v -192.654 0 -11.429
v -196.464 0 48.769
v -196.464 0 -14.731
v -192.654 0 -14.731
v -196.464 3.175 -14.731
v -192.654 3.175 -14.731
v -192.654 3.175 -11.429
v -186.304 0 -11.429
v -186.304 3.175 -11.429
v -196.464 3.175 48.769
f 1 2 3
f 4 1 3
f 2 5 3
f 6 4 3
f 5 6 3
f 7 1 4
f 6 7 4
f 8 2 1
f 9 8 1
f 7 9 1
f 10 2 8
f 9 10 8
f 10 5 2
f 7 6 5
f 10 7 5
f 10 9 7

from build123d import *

# Parameters (mm, degrees)
SKETCH2_W                      = 304.8
SKETCH2_H                      = 304.8
BOSS_EXTRUDE1_DEPTH            = 3.175
CUT_EXTRUDE1_DEPTH             = 348.408852067
CUT_EXTRUDE1_DEPTH_BACK        = 348.408852067
SKETCH3_W                      = 304.8
SKETCH3_H                      = 304.8
SKETCH3_R                      = 12.7
SKETCH3_R_2                    = 8.89
BODY_DELETE_KEEP_1_OUTLINE_R   = 8.89
BODY_DELETE_KEEP_1_OUTLINE_R_2 = 12.7
BODY_DELETE_KEEP_1_DEPTH       = 3.175


# Read off the part's stored shape, not the designer's step: Body-Delete/Keep 1
with BuildPart() as part:
    # Sketch2 → Boss-Extrude1 (new body)
    with BuildSketch(Plane(origin=(0, 0, 0), x_dir=(1, 0, 0), z_dir=(0, 1, 0))):
        with Locations((-56.763509666, -124.968808797)):
            Rectangle(SKETCH2_W, SKETCH2_H)
    extrude(amount=BOSS_EXTRUDE1_DEPTH)

    # Sketch3 → Cut-Extrude1 (cut, two sides: drawn at the far end of the back side and taken through both)
    # profile 1 of 3: a face of its own
    with BuildSketch(Plane(origin=(0, 3.175, 0), x_dir=(1, 0, 0), z_dir=(0, 1, 0)).offset(-CUT_EXTRUDE1_DEPTH_BACK)):
        with Locations((-56.763509666, -124.968808797)):
            Rectangle(SKETCH3_W, SKETCH3_H)
        Polygon((-188.253637726, -268.695366412), (-192.063637726, -268.695366412), (-192.063637726, -265.393366412), (-198.413637726, -265.393366412), (-188.253637726, -205.195366412), align=None, mode=Mode.SUBTRACT)
        Polygon((-185.713637726, -265.393366412), (-175.553637726, -205.195366412), (-175.553637726, -268.695366412), (-179.363637726, -268.695366412), (-179.363637726, -265.393366412), align=None, mode=Mode.SUBTRACT)
        Polygon((-162.853637726, -268.695366412), (-166.663637726, -268.695366412), (-166.663637726, -265.393366412), (-173.013637726, -265.393366412), (-162.853637726, -205.195366412), align=None, mode=Mode.SUBTRACT)
        Polygon((-150.153637726, -268.695366412), (-153.963637726, -268.695366412), (-153.963637726, -265.393366412), (-160.313637726, -265.393366412), (-150.153637726, -205.195366412), align=None, mode=Mode.SUBTRACT)
        Polygon((-147.613637726, -265.393366412), (-137.453637726, -205.195366412), (-137.453637726, -268.695366412), (-141.263637726, -268.695366412), (-141.263637726, -265.393366412), align=None, mode=Mode.SUBTRACT)
        Polygon((-128.563637726, -265.393366412), (-134.913637726, -265.393366412), (-124.753637726, -205.195366412), (-124.753637726, -268.695366412), (-128.563637726, -268.695366412), align=None, mode=Mode.SUBTRACT)
        Polygon((-122.213637726, -265.393366412), (-112.053637726, -205.195366412), (-112.053637726, -268.695366412), (-115.863637726, -268.695366412), (-115.863637726, -265.393366412), align=None, mode=Mode.SUBTRACT)
        Polygon((-99.353637726, -268.695366412), (-103.163637726, -268.695366412), (-103.163637726, -265.393366412), (-109.513637726, -265.393366412), (-99.353637726, -205.195366412), align=None, mode=Mode.SUBTRACT)
        Polygon((-90.463637726, -268.695366412), (-90.463637726, -265.393366412), (-96.813637726, -265.393366412), (-86.653637726, -205.195366412), (-86.653637726, -268.695366412), align=None, mode=Mode.SUBTRACT)
        Polygon((-84.113637726, -265.393366412), (-73.953637726, -205.195366412), (-73.953637726, -268.695366412), (-77.763637726, -268.695366412), (-77.763637726, -265.393366412), align=None, mode=Mode.SUBTRACT)
        Polygon((-71.413637726, -265.393366412), (-61.253637726, -205.195366412), (-61.253637726, -268.695366412), (-65.063637726, -268.695366412), (-65.063637726, -265.393366412), align=None, mode=Mode.SUBTRACT)
        with BuildLine():
            ThreePointArc((-132.963509666, -135.600090559), (-133.446874634, -138.030130355), (-134.823381605, -140.09021862))
            Line((-134.823381605, -140.09021862), (-188.253637726, -193.520474741))
            ThreePointArc((-188.253637726, -193.520474741), (-190.313725991, -194.896981712), (-192.743765787, -195.38034668))
            Line((-192.743765787, -195.38034668), (-196.463509666, -195.38034668))
            Line((-196.463509666, -195.38034668), (-196.463509666, -131.88034668))
            Line((-196.463509666, -131.88034668), (-132.963509666, -131.88034668))
            Line((-132.963509666, -131.88034668), (-132.963509666, -135.600090559))
        make_face(mode=Mode.SUBTRACT)
        with BuildLine():
            Line((-126.613509666, -195.38034668), (-126.613509666, -131.88034668))
            Line((-126.613509666, -131.88034668), (-63.113509666, -131.88034668))
            Line((-63.113509666, -131.88034668), (-63.113509666, -135.600090559))
            ThreePointArc((-63.113509666, -135.600090559), (-63.596874634, -138.030130355), (-64.973381605, -140.09021862))
            Line((-64.973381605, -140.09021862), (-118.403637726, -193.520474741))
            ThreePointArc((-118.403637726, -193.520474741), (-120.463725991, -194.896981712), (-122.893765787, -195.38034668))
            Line((-122.893765787, -195.38034668), (-126.613509666, -195.38034668))
        make_face(mode=Mode.SUBTRACT)
        Polygon((-52.363637726, -268.695366412), (-52.363637726, -265.393366412), (-58.713637726, -265.393366412), (-48.553637726, -205.195366412), (-48.553637726, -268.695366412), align=None, mode=Mode.SUBTRACT)
        Polygon((-35.853637726, -205.195366412), (-35.853637726, -268.695366412), (-39.663637726, -268.695366412), (-39.663637726, -265.393366412), (-46.013637726, -265.393366412), align=None, mode=Mode.SUBTRACT)
        Polygon((-23.153637726, -205.195366412), (-23.153637726, -268.695366412), (-26.963637726, -268.695366412), (-26.963637726, -265.393366412), (-33.313637726, -265.393366412), align=None, mode=Mode.SUBTRACT)
        Polygon((-20.613637726, -265.393366412), (-10.453637726, -205.195366412), (-10.453637726, -268.695366412), (-14.263637726, -268.695366412), (-14.263637726, -265.393366412), align=None, mode=Mode.SUBTRACT)
        Polygon((-1.563637726, -268.695366412), (-1.563637726, -265.393366412), (-7.913637726, -265.393366412), (2.246362274, -205.195366412), (2.246362274, -268.695366412), align=None, mode=Mode.SUBTRACT)
        with BuildLine():
            Line((-53.043765787, -195.38034668), (-56.763509666, -195.38034668))
            Line((-56.763509666, -195.38034668), (-56.763509666, -131.88034668))
            Line((-56.763509666, -131.88034668), (6.736490334, -131.88034668))
            Line((6.736490334, -131.88034668), (6.736490334, -135.600090559))
            ThreePointArc((6.736490334, -135.600090559), (6.253125366, -138.030130355), (4.876618395, -140.09021862))
            Line((4.876618395, -140.09021862), (-48.553637726, -193.520474741))
            ThreePointArc((-48.553637726, -193.520474741), (-50.613725991, -194.896981712), (-53.043765787, -195.38034668))
        make_face(mode=Mode.SUBTRACT)
        with BuildLine():
            Line((13.086490334, -131.88034668), (76.586490334, -131.88034668))
            Line((76.586490334, -131.88034668), (76.586490334, -135.600090559))
            ThreePointArc((76.586490334, -135.600090559), (76.103125366, -138.030130355), (74.726618395, -140.09021862))
            Line((74.726618395, -140.09021862), (21.296362274, -193.520474741))
            ThreePointArc((21.296362274, -193.520474741), (19.236274009, -194.896981712), (16.806234213, -195.38034668))
            Line((16.806234213, -195.38034668), (13.086490334, -195.38034668))
            Line((13.086490334, -195.38034668), (13.086490334, -131.88034668))
        make_face(mode=Mode.SUBTRACT)
        with BuildLine():
            Line((-196.463509666, -125.53034668), (-196.463509666, -62.03034668))
            Line((-196.463509666, -62.03034668), (-132.963509666, -62.03034668))
            Line((-132.963509666, -62.03034668), (-132.963509666, -65.750090559))
            ThreePointArc((-132.963509666, -65.750090559), (-133.10773728, -67.095783354), (-133.533868437, -68.38034668))
            ThreePointArc((-133.533868437, -68.38034668), (-134.095097913, -69.368194866), (-134.823381605, -70.24021862))
            Line((-134.823381605, -70.24021862), (-188.253637726, -123.670474741))
            ThreePointArc((-188.253637726, -123.670474741), (-189.12566148, -124.398758433), (-190.113509666, -124.959987909))
            ThreePointArc((-190.113509666, -124.959987909), (-191.398072992, -125.386119066), (-192.743765787, -125.53034668))
            Line((-192.743765787, -125.53034668), (-196.463509666, -125.53034668))
        make_face(mode=Mode.SUBTRACT)
        with BuildLine():
            Line((-122.893765787, -125.53034668), (-126.613509666, -125.53034668))
            Line((-126.613509666, -125.53034668), (-126.613509666, -62.03034668))
            Line((-126.613509666, -62.03034668), (-63.113509666, -62.03034668))
            Line((-63.113509666, -62.03034668), (-63.113509666, -65.750090559))
            ThreePointArc((-63.113509666, -65.750090559), (-63.596874634, -68.180130355), (-64.973381605, -70.24021862))
            Line((-64.973381605, -70.24021862), (-118.403637726, -123.670474741))
            ThreePointArc((-118.403637726, -123.670474741), (-120.463725991, -125.046981712), (-122.893765787, -125.53034668))
        make_face(mode=Mode.SUBTRACT)
        Polygon((-196.463509666, -48.768808797), (-196.463509666, 14.731191203), (-192.653509666, 14.731191203), (-192.653509666, 11.429191203), (-186.303509666, 11.429191203), align=None, mode=Mode.SUBTRACT)
        Polygon((-183.763509666, 14.731191203), (-179.953509666, 14.731191203), (-179.953509666, 11.429191203), (-173.603509666, 11.429191203), (-183.763509666, -48.768808797), align=None, mode=Mode.SUBTRACT)
        Polygon((-171.063509666, 14.731191203), (-167.253509666, 14.731191203), (-167.253509666, 11.429191203), (-160.903509666, 11.429191203), (-171.063509666, -48.768808797), align=None, mode=Mode.SUBTRACT)
        Polygon((-158.363509666, 14.731191203), (-154.553509666, 14.731191203), (-154.553509666, 11.429191203), (-148.203509666, 11.429191203), (-158.363509666, -48.768808797), align=None, mode=Mode.SUBTRACT)
        Polygon((-145.663509666, 14.731191203), (-141.853509666, 14.731191203), (-141.853509666, 11.429191203), (-135.503509666, 11.429191203), (-145.663509666, -48.768808797), align=None, mode=Mode.SUBTRACT)
        Polygon((-132.963509666, 14.731191203), (-129.153509666, 14.731191203), (-129.153509666, 11.429191203), (-122.803509666, 11.429191203), (-132.963509666, -48.768808797), align=None, mode=Mode.SUBTRACT)
        Polygon((-120.263509666, 14.731191203), (-116.453509666, 14.731191203), (-116.453509666, 11.429191203), (-110.103509666, 11.429191203), (-120.263509666, -48.768808797), align=None, mode=Mode.SUBTRACT)
        Polygon((-107.563509666, 14.731191203), (-103.753509666, 14.731191203), (-103.753509666, 11.429191203), (-97.403509666, 11.429191203), (-107.563509666, -48.768808797), align=None, mode=Mode.SUBTRACT)
        Polygon((-94.863509666, 14.731191203), (-91.053509666, 14.731191203), (-91.053509666, 11.429191203), (-84.703509666, 11.429191203), (-94.863509666, -48.768808797), align=None, mode=Mode.SUBTRACT)
        Polygon((-82.163509666, 14.731191203), (-78.353509666, 14.731191203), (-78.353509666, 11.429191203), (-72.003509666, 11.429191203), (-82.163509666, -48.768808797), align=None, mode=Mode.SUBTRACT)
        Polygon((-69.463509666, 14.731191203), (-65.653509666, 14.731191203), (-65.653509666, 11.429191203), (-59.303509666, 11.429191203), (-69.463509666, -48.768808797), align=None, mode=Mode.SUBTRACT)
        with BuildLine():
            Line((-53.043765787, -125.53034668), (-56.763509666, -125.53034668))
            Line((-56.763509666, -125.53034668), (-56.763509666, -62.03034668))
            Line((-56.763509666, -62.03034668), (6.736490334, -62.03034668))
            Line((6.736490334, -62.03034668), (6.736490334, -65.750090559))
            ThreePointArc((6.736490334, -65.750090559), (6.253125366, -68.180130355), (4.876618395, -70.24021862))
            Line((4.876618395, -70.24021862), (-48.553637726, -123.670474741))
            ThreePointArc((-48.553637726, -123.670474741), (-50.613725991, -125.046981712), (-53.043765787, -125.53034668))
        make_face(mode=Mode.SUBTRACT)
        with BuildLine():
            Line((16.806234213, -125.53034668), (13.086490334, -125.53034668))
            Line((13.086490334, -125.53034668), (13.086490334, -62.03034668))
            Line((13.086490334, -62.03034668), (76.586490334, -62.03034668))
            Line((76.586490334, -62.03034668), (76.586490334, -65.750090559))
            ThreePointArc((76.586490334, -65.750090559), (76.103125366, -68.180130355), (74.726618395, -70.24021862))
            Line((74.726618395, -70.24021862), (21.296362274, -123.670474741))
            ThreePointArc((21.296362274, -123.670474741), (19.236274009, -125.046981712), (16.806234213, -125.53034668))
        make_face(mode=Mode.SUBTRACT)
        Polygon((-56.763509666, 14.731191203), (-52.953509666, 14.731191203), (-52.953509666, 11.429191203), (-46.603509666, 11.429191203), (-56.763509666, -48.768808797), align=None, mode=Mode.SUBTRACT)
        Polygon((-44.063509666, 14.731191203), (-40.253509666, 14.731191203), (-40.253509666, 11.429191203), (-33.903509666, 11.429191203), (-44.063509666, -48.768808797), align=None, mode=Mode.SUBTRACT)
        Polygon((-31.363509666, 14.731191203), (-27.553509666, 14.731191203), (-27.553509666, 11.429191203), (-21.203509666, 11.429191203), (-31.363509666, -48.768808797), align=None, mode=Mode.SUBTRACT)
        Polygon((-18.663509666, 14.731191203), (-14.853509666, 14.731191203), (-14.853509666, 11.429191203), (-8.503509666, 11.429191203), (-18.663509666, -48.768808797), align=None, mode=Mode.SUBTRACT)
        Polygon((-5.963509666, 14.731191203), (-2.153509666, 14.731191203), (-2.153509666, 11.429191203), (4.196490334, 11.429191203), (-5.963509666, -48.768808797), align=None, mode=Mode.SUBTRACT)
        Polygon((57.536490334, -48.768808797), (57.536490334, -52.070808797), (32.136490334, -52.070808797), (32.136490334, -48.768808797), (28.834490334, -48.768808797), (28.834490334, -23.368808797), (32.136490334, -23.368808797), (32.136490334, -20.066808797), (57.536490334, -20.066808797), (57.536490334, -23.368808797), (60.838490334, -23.368808797), (60.838490334, -48.768808797), align=None, mode=Mode.SUBTRACT)
        Polygon((28.834490334, 14.731191203), (32.136490334, 14.731191203), (32.136490334, 18.033191203), (57.536490334, 18.033191203), (57.536490334, 14.731191203), (60.838490334, 14.731191203), (60.838490334, -10.668808797), (57.536490334, -10.668808797), (57.536490334, -13.970808797), (32.136490334, -13.970808797), (32.136490334, -10.668808797), (28.834490334, -10.668808797), align=None, mode=Mode.SUBTRACT)
    # profile 2 of 3: a face of its own
    with BuildSketch(Plane(origin=(0, 3.175, 0), x_dir=(1, 0, 0), z_dir=(0, 1, 0)).offset(-CUT_EXTRUDE1_DEPTH_BACK)):
        with Locations(Location((44.836490334, -36.068808797, 0), (0, 0, 270))):
            Circle(SKETCH3_R)
    # profile 3 of 3: a face of its own
    with BuildSketch(Plane(origin=(0, 3.175, 0), x_dir=(1, 0, 0), z_dir=(0, 1, 0)).offset(-CUT_EXTRUDE1_DEPTH_BACK)):
        with Locations(Location((44.836490334, 2.031191203, 0), (0, 0, 270))):
            Circle(SKETCH3_R_2)
    extrude(amount=CUT_EXTRUDE1_DEPTH + CUT_EXTRUDE1_DEPTH_BACK, mode=Mode.SUBTRACT)

    # Body-Delete/Keep 1 outline → Body-Delete/Keep 1 (cut)
    # profile 1 of 41: a face of its own
    with BuildSketch(Plane(origin=(0, 0, 0), x_dir=(1, 0, 0), z_dir=(0, 1, 0))):
        Polygon((-5.963509666, -48.768808797), (4.196490334, 11.429191203), (-2.153509666, 11.429191203), (-2.153509666, 14.731191203), (-5.963509666, 14.731191203), align=None)
    # profile 2 of 41: a face of its own
    with BuildSketch(Plane(origin=(0, 0, 0), x_dir=(1, 0, 0), z_dir=(0, 1, 0))):
        Polygon((-31.363509666, -48.768808797), (-21.203509666, 11.429191203), (-27.553509666, 11.429191203), (-27.553509666, 14.731191203), (-31.363509666, 14.731191203), align=None)
    # profile 3 of 41: a face of its own
    with BuildSketch(Plane(origin=(0, 0, 0), x_dir=(1, 0, 0), z_dir=(0, 1, 0))):
        Polygon((-18.663509666, -48.768808797), (-8.503509666, 11.429191203), (-14.853509666, 11.429191203), (-14.853509666, 14.731191203), (-18.663509666, 14.731191203), align=None)
    # profile 4 of 41: a face of its own
    with BuildSketch(Plane(origin=(0, 0, 0), x_dir=(1, 0, 0), z_dir=(0, 1, 0))):
        Polygon((-69.463509666, -48.768808797), (-59.303509666, 11.429191203), (-65.653509666, 11.429191203), (-65.653509666, 14.731191203), (-69.463509666, 14.731191203), align=None)
    # profile 5 of 41: a face of its own
    with BuildSketch(Plane(origin=(0, 0, 0), x_dir=(1, 0, 0), z_dir=(0, 1, 0))):
        Polygon((-94.863509666, -48.768808797), (-84.703509666, 11.429191203), (-91.053509666, 11.429191203), (-91.053509666, 14.731191203), (-94.863509666, 14.731191203), align=None)
    # profile 6 of 41: a face of its own
    with BuildSketch(Plane(origin=(0, 0, 0), x_dir=(1, 0, 0), z_dir=(0, 1, 0))):
        Polygon((-44.063509666, -48.768808797), (-33.903509666, 11.429191203), (-40.253509666, 11.429191203), (-40.253509666, 14.731191203), (-44.063509666, 14.731191203), align=None)
    # profile 7 of 41: a face of its own
    with BuildSketch(Plane(origin=(0, 0, 0), x_dir=(1, 0, 0), z_dir=(0, 1, 0))):
        Polygon((-56.763509666, -48.768808797), (-46.603509666, 11.429191203), (-52.953509666, 11.429191203), (-52.953509666, 14.731191203), (-56.763509666, 14.731191203), align=None)
    # profile 8 of 41: a face of its own
    with BuildSketch(Plane(origin=(0, 0, 0), x_dir=(1, 0, 0), z_dir=(0, 1, 0))):
        Polygon((-145.663509666, -48.768808797), (-135.503509666, 11.429191203), (-141.853509666, 11.429191203), (-141.853509666, 14.731191203), (-145.663509666, 14.731191203), align=None)
    # profile 9 of 41: a face of its own
    with BuildSketch(Plane(origin=(0, 0, 0), x_dir=(1, 0, 0), z_dir=(0, 1, 0))):
        Polygon((-158.363509666, -48.768808797), (-148.203509666, 11.429191203), (-154.553509666, 11.429191203), (-154.553509666, 14.731191203), (-158.363509666, 14.731191203), align=None)
    # profile 10 of 41: a face of its own
    with BuildSketch(Plane(origin=(0, 0, 0), x_dir=(1, 0, 0), z_dir=(0, 1, 0))):
        Polygon((-171.063509666, -48.768808797), (-160.903509666, 11.429191203), (-167.253509666, 11.429191203), (-167.253509666, 14.731191203), (-171.063509666, 14.731191203), align=None)
    # profile 11 of 41: a face of its own
    with BuildSketch(Plane(origin=(0, 0, 0), x_dir=(1, 0, 0), z_dir=(0, 1, 0))):
        Polygon((-82.163509666, -48.768808797), (-72.003509666, 11.429191203), (-78.353509666, 11.429191203), (-78.353509666, 14.731191203), (-82.163509666, 14.731191203), align=None)
    # profile 12 of 41: a face of its own
    with BuildSketch(Plane(origin=(0, 0, 0), x_dir=(1, 0, 0), z_dir=(0, 1, 0))):
        Polygon((-183.763509666, -48.768808797), (-173.603509666, 11.429191203), (-179.953509666, 11.429191203), (-179.953509666, 14.731191203), (-183.763509666, 14.731191203), align=None)
    # profile 13 of 41: a face of its own
    with BuildSketch(Plane(origin=(0, 0, 0), x_dir=(1, 0, 0), z_dir=(0, 1, 0))):
        Polygon((-107.563509666, -48.768808797), (-97.403509666, 11.429191203), (-103.753509666, 11.429191203), (-103.753509666, 14.731191203), (-107.563509666, 14.731191203), align=None)
    # profile 14 of 41: a face of its own
    with BuildSketch(Plane(origin=(0, 0, 0), x_dir=(1, 0, 0), z_dir=(0, 1, 0))):
        Polygon((-120.263509666, -48.768808797), (-110.103509666, 11.429191203), (-116.453509666, 11.429191203), (-116.453509666, 14.731191203), (-120.263509666, 14.731191203), align=None)
    # profile 15 of 41: a face of its own
    with BuildSketch(Plane(origin=(0, 0, 0), x_dir=(1, 0, 0), z_dir=(0, 1, 0))):
        Polygon((-132.963509666, -48.768808797), (-122.803509666, 11.429191203), (-129.153509666, 11.429191203), (-129.153509666, 14.731191203), (-132.963509666, 14.731191203), align=None)
    # profile 16 of 41: a face of its own
    with BuildSketch(Plane(origin=(0, 0, 0), x_dir=(1, 0, 0), z_dir=(0, 1, 0))):
        with BuildLine():
            Line((-132.963509666, -62.03034668), (-196.463509666, -62.03034668))
            Line((-196.463509666, -62.03034668), (-196.463509666, -125.53034668))
            Line((-196.463509666, -125.53034668), (-192.743765787, -125.53034668))
            ThreePointArc((-192.743765787, -125.53034668), (-190.313725991, -125.046981712), (-188.253637726, -123.670474741))
            Line((-188.253637726, -123.670474741), (-134.823381605, -70.24021862))
            ThreePointArc((-134.823381605, -70.24021862), (-133.446874634, -68.180130355), (-132.963509666, -65.750090559))
            Line((-132.963509666, -65.750090559), (-132.963509666, -62.03034668))
        make_face()
    # profile 17 of 41: a face of its own
    with BuildSketch(Plane(origin=(0, 0, 0), x_dir=(1, 0, 0), z_dir=(0, 1, 0))):
        with BuildLine():
            Line((-132.963509666, -131.88034668), (-196.463509666, -131.88034668))
            Line((-196.463509666, -131.88034668), (-196.463509666, -195.38034668))
            Line((-196.463509666, -195.38034668), (-192.743765787, -195.38034668))
            ThreePointArc((-192.743765787, -195.38034668), (-190.313725991, -194.896981712), (-188.253637726, -193.520474741))
            Line((-188.253637726, -193.520474741), (-134.823381605, -140.09021862))
            ThreePointArc((-134.823381605, -140.09021862), (-133.446874634, -138.030130355), (-132.963509666, -135.600090559))
            Line((-132.963509666, -135.600090559), (-132.963509666, -131.88034668))
        make_face()
    # profile 18 of 41: a face of its own
    with BuildSketch(Plane(origin=(0, 0, 0), x_dir=(1, 0, 0), z_dir=(0, 1, 0))):
        Polygon((32.136490334, 18.033191203), (32.136490334, 14.731191203), (28.834490334, 14.731191203), (28.834490334, -10.668808797), (32.136490334, -10.668808797), (32.136490334, -13.970808797), (57.536490334, -13.970808797), (57.536490334, -10.668808797), (60.838490334, -10.668808797), (60.838490334, 14.731191203), (57.536490334, 14.731191203), (57.536490334, 18.033191203), align=None)
        with Locations((44.836490334, 2.031191203)):
            Circle(BODY_DELETE_KEEP_1_OUTLINE_R, mode=Mode.SUBTRACT)
    # profile 19 of 41: a face of its own
    with BuildSketch(Plane(origin=(0, 0, 0), x_dir=(1, 0, 0), z_dir=(0, 1, 0))):
        Polygon((32.136490334, -20.066808797), (32.136490334, -23.368808797), (28.834490334, -23.368808797), (28.834490334, -48.768808797), (32.136490334, -48.768808797), (32.136490334, -52.070808797), (57.536490334, -52.070808797), (57.536490334, -48.768808797), (60.838490334, -48.768808797), (60.838490334, -23.368808797), (57.536490334, -23.368808797), (57.536490334, -20.066808797), align=None)
        with Locations((44.836490334, -36.068808797)):
            Circle(BODY_DELETE_KEEP_1_OUTLINE_R_2, mode=Mode.SUBTRACT)
    # profile 20 of 41: a face of its own
    with BuildSketch(Plane(origin=(0, 0, 0), x_dir=(1, 0, 0), z_dir=(0, 1, 0))):
        Polygon((-71.413637726, -265.393366412), (-65.063637726, -265.393366412), (-65.063637726, -268.695366412), (-61.253637726, -268.695366412), (-61.253637726, -205.195366412), align=None)
    # profile 21 of 41: a face of its own
    with BuildSketch(Plane(origin=(0, 0, 0), x_dir=(1, 0, 0), z_dir=(0, 1, 0))):
        Polygon((-124.753637726, -205.195366412), (-134.913637726, -265.393366412), (-128.563637726, -265.393366412), (-128.563637726, -268.695366412), (-124.753637726, -268.695366412), align=None)
    # profile 22 of 41: a face of its own
    with BuildSketch(Plane(origin=(0, 0, 0), x_dir=(1, 0, 0), z_dir=(0, 1, 0))):
        Polygon((-23.153637726, -205.195366412), (-33.313637726, -265.393366412), (-26.963637726, -265.393366412), (-26.963637726, -268.695366412), (-23.153637726, -268.695366412), align=None)
    # profile 23 of 41: a face of its own
    with BuildSketch(Plane(origin=(0, 0, 0), x_dir=(1, 0, 0), z_dir=(0, 1, 0))):
        Polygon((-35.853637726, -205.195366412), (-46.013637726, -265.393366412), (-39.663637726, -265.393366412), (-39.663637726, -268.695366412), (-35.853637726, -268.695366412), align=None)
    # profile 24 of 41: a face of its own
    with BuildSketch(Plane(origin=(0, 0, 0), x_dir=(1, 0, 0), z_dir=(0, 1, 0))):
        Polygon((-73.953637726, -205.195366412), (-84.113637726, -265.393366412), (-77.763637726, -265.393366412), (-77.763637726, -268.695366412), (-73.953637726, -268.695366412), align=None)
    # profile 25 of 41: a face of its own
    with BuildSketch(Plane(origin=(0, 0, 0), x_dir=(1, 0, 0), z_dir=(0, 1, 0))):
        Polygon((-162.853637726, -205.195366412), (-173.013637726, -265.393366412), (-166.663637726, -265.393366412), (-166.663637726, -268.695366412), (-162.853637726, -268.695366412), align=None)
    # profile 26 of 41: a face of its own
    with BuildSketch(Plane(origin=(0, 0, 0), x_dir=(1, 0, 0), z_dir=(0, 1, 0))):
        Polygon((-188.253637726, -205.195366412), (-198.413637726, -265.393366412), (-192.063637726, -265.393366412), (-192.063637726, -268.695366412), (-188.253637726, -268.695366412), align=None)
    # profile 27 of 41: a face of its own
    with BuildSketch(Plane(origin=(0, 0, 0), x_dir=(1, 0, 0), z_dir=(0, 1, 0))):
        Polygon((-175.553637726, -205.195366412), (-185.713637726, -265.393366412), (-179.363637726, -265.393366412), (-179.363637726, -268.695366412), (-175.553637726, -268.695366412), align=None)
    # profile 28 of 41: a face of its own
    with BuildSketch(Plane(origin=(0, 0, 0), x_dir=(1, 0, 0), z_dir=(0, 1, 0))):
        Polygon((-150.153637726, -205.195366412), (-160.313637726, -265.393366412), (-153.963637726, -265.393366412), (-153.963637726, -268.695366412), (-150.153637726, -268.695366412), align=None)
    # profile 29 of 41: a face of its own
    with BuildSketch(Plane(origin=(0, 0, 0), x_dir=(1, 0, 0), z_dir=(0, 1, 0))):
        Polygon((-86.653637726, -205.195366412), (-96.813637726, -265.393366412), (-90.463637726, -265.393366412), (-90.463637726, -268.695366412), (-86.653637726, -268.695366412), align=None)
    # profile 30 of 41: a face of its own
    with BuildSketch(Plane(origin=(0, 0, 0), x_dir=(1, 0, 0), z_dir=(0, 1, 0))):
        Polygon((2.246362274, -205.195366412), (-7.913637726, -265.393366412), (-1.563637726, -265.393366412), (-1.563637726, -268.695366412), (2.246362274, -268.695366412), align=None)
    # profile 31 of 41: a face of its own
    with BuildSketch(Plane(origin=(0, 0, 0), x_dir=(1, 0, 0), z_dir=(0, 1, 0))):
        Polygon((-137.453637726, -205.195366412), (-147.613637726, -265.393366412), (-141.263637726, -265.393366412), (-141.263637726, -268.695366412), (-137.453637726, -268.695366412), align=None)
    # profile 32 of 41: a face of its own
    with BuildSketch(Plane(origin=(0, 0, 0), x_dir=(1, 0, 0), z_dir=(0, 1, 0))):
        Polygon((-48.553637726, -205.195366412), (-58.713637726, -265.393366412), (-52.363637726, -265.393366412), (-52.363637726, -268.695366412), (-48.553637726, -268.695366412), align=None)
    # profile 33 of 41: a face of its own
    with BuildSketch(Plane(origin=(0, 0, 0), x_dir=(1, 0, 0), z_dir=(0, 1, 0))):
        Polygon((-10.453637726, -205.195366412), (-20.613637726, -265.393366412), (-14.263637726, -265.393366412), (-14.263637726, -268.695366412), (-10.453637726, -268.695366412), align=None)
    # profile 34 of 41: a face of its own
    with BuildSketch(Plane(origin=(0, 0, 0), x_dir=(1, 0, 0), z_dir=(0, 1, 0))):
        Polygon((-99.353637726, -205.195366412), (-109.513637726, -265.393366412), (-103.163637726, -265.393366412), (-103.163637726, -268.695366412), (-99.353637726, -268.695366412), align=None)
    # profile 35 of 41: a face of its own
    with BuildSketch(Plane(origin=(0, 0, 0), x_dir=(1, 0, 0), z_dir=(0, 1, 0))):
        Polygon((-112.053637726, -205.195366412), (-122.213637726, -265.393366412), (-115.863637726, -265.393366412), (-115.863637726, -268.695366412), (-112.053637726, -268.695366412), align=None)
    # profile 36 of 41: a face of its own
    with BuildSketch(Plane(origin=(0, 0, 0), x_dir=(1, 0, 0), z_dir=(0, 1, 0))):
        with BuildLine():
            Line((6.736490334, -131.88034668), (-56.763509666, -131.88034668))
            Line((-56.763509666, -131.88034668), (-56.763509666, -195.38034668))
            Line((-56.763509666, -195.38034668), (-53.043765787, -195.38034668))
            ThreePointArc((-53.043765787, -195.38034668), (-50.613725991, -194.896981712), (-48.553637726, -193.520474741))
            Line((-48.553637726, -193.520474741), (4.876618395, -140.09021862))
            ThreePointArc((4.876618395, -140.09021862), (6.253125366, -138.030130355), (6.736490334, -135.600090559))
            Line((6.736490334, -135.600090559), (6.736490334, -131.88034668))
        make_face()
    # profile 37 of 41: a face of its own
    with BuildSketch(Plane(origin=(0, 0, 0), x_dir=(1, 0, 0), z_dir=(0, 1, 0))):
        with BuildLine():
            Line((6.736490334, -62.03034668), (-56.763509666, -62.03034668))
            Line((-56.763509666, -62.03034668), (-56.763509666, -125.53034668))
            Line((-56.763509666, -125.53034668), (-53.043765787, -125.53034668))
            ThreePointArc((-53.043765787, -125.53034668), (-50.613725991, -125.046981712), (-48.553637726, -123.670474741))
            Line((-48.553637726, -123.670474741), (4.876618395, -70.24021862))
            ThreePointArc((4.876618395, -70.24021862), (6.253125366, -68.180130355), (6.736490334, -65.750090559))
            Line((6.736490334, -65.750090559), (6.736490334, -62.03034668))
        make_face()
    # profile 38 of 41: a face of its own
    with BuildSketch(Plane(origin=(0, 0, 0), x_dir=(1, 0, 0), z_dir=(0, 1, 0))):
        with BuildLine():
            Line((21.296362274, -193.520474741), (74.726618395, -140.09021862))
            ThreePointArc((74.726618395, -140.09021862), (76.103125366, -138.030130355), (76.586490334, -135.600090559))
            Line((76.586490334, -135.600090559), (76.586490334, -131.88034668))
            Line((76.586490334, -131.88034668), (13.086490334, -131.88034668))
            Line((13.086490334, -131.88034668), (13.086490334, -195.38034668))
            Line((13.086490334, -195.38034668), (16.806234213, -195.38034668))
            ThreePointArc((16.806234213, -195.38034668), (19.236274009, -194.896981712), (21.296362274, -193.520474741))
        make_face()
    # profile 39 of 41: a face of its own
    with BuildSketch(Plane(origin=(0, 0, 0), x_dir=(1, 0, 0), z_dir=(0, 1, 0))):
        with BuildLine():
            Line((-126.613509666, -131.88034668), (-126.613509666, -195.38034668))
            Line((-126.613509666, -195.38034668), (-122.893765787, -195.38034668))
            ThreePointArc((-122.893765787, -195.38034668), (-120.463725991, -194.896981712), (-118.403637726, -193.520474741))
            Line((-118.403637726, -193.520474741), (-64.973381605, -140.09021862))
            ThreePointArc((-64.973381605, -140.09021862), (-63.596874634, -138.030130355), (-63.113509666, -135.600090559))
            Line((-63.113509666, -135.600090559), (-63.113509666, -131.88034668))
            Line((-63.113509666, -131.88034668), (-126.613509666, -131.88034668))
        make_face()
    # profile 40 of 41: a face of its own
    with BuildSketch(Plane(origin=(0, 0, 0), x_dir=(1, 0, 0), z_dir=(0, 1, 0))):
        with BuildLine():
            Line((76.586490334, -62.03034668), (13.086490334, -62.03034668))
            Line((13.086490334, -62.03034668), (13.086490334, -125.53034668))
            Line((13.086490334, -125.53034668), (16.806234213, -125.53034668))
            ThreePointArc((16.806234213, -125.53034668), (19.236274009, -125.046981712), (21.296362274, -123.670474741))
            Line((21.296362274, -123.670474741), (74.726618395, -70.24021862))
            ThreePointArc((74.726618395, -70.24021862), (76.103125366, -68.180130355), (76.586490334, -65.750090559))
            Line((76.586490334, -65.750090559), (76.586490334, -62.03034668))
        make_face()
    # profile 41 of 41: a face of its own
    with BuildSketch(Plane(origin=(0, 0, 0), x_dir=(1, 0, 0), z_dir=(0, 1, 0))):
        with BuildLine():
            Line((-126.613509666, -62.03034668), (-126.613509666, -125.53034668))
            Line((-126.613509666, -125.53034668), (-122.893765787, -125.53034668))
            ThreePointArc((-122.893765787, -125.53034668), (-120.463725991, -125.046981712), (-118.403637726, -123.670474741))
            Line((-118.403637726, -123.670474741), (-64.973381605, -70.24021862))
            ThreePointArc((-64.973381605, -70.24021862), (-63.596874634, -68.180130355), (-63.113509666, -65.750090559))
            Line((-63.113509666, -65.750090559), (-63.113509666, -62.03034668))
            Line((-63.113509666, -62.03034668), (-126.613509666, -62.03034668))
        make_face()
    extrude(amount=BODY_DELETE_KEEP_1_DEPTH, mode=Mode.SUBTRACT)


solid = part.part
